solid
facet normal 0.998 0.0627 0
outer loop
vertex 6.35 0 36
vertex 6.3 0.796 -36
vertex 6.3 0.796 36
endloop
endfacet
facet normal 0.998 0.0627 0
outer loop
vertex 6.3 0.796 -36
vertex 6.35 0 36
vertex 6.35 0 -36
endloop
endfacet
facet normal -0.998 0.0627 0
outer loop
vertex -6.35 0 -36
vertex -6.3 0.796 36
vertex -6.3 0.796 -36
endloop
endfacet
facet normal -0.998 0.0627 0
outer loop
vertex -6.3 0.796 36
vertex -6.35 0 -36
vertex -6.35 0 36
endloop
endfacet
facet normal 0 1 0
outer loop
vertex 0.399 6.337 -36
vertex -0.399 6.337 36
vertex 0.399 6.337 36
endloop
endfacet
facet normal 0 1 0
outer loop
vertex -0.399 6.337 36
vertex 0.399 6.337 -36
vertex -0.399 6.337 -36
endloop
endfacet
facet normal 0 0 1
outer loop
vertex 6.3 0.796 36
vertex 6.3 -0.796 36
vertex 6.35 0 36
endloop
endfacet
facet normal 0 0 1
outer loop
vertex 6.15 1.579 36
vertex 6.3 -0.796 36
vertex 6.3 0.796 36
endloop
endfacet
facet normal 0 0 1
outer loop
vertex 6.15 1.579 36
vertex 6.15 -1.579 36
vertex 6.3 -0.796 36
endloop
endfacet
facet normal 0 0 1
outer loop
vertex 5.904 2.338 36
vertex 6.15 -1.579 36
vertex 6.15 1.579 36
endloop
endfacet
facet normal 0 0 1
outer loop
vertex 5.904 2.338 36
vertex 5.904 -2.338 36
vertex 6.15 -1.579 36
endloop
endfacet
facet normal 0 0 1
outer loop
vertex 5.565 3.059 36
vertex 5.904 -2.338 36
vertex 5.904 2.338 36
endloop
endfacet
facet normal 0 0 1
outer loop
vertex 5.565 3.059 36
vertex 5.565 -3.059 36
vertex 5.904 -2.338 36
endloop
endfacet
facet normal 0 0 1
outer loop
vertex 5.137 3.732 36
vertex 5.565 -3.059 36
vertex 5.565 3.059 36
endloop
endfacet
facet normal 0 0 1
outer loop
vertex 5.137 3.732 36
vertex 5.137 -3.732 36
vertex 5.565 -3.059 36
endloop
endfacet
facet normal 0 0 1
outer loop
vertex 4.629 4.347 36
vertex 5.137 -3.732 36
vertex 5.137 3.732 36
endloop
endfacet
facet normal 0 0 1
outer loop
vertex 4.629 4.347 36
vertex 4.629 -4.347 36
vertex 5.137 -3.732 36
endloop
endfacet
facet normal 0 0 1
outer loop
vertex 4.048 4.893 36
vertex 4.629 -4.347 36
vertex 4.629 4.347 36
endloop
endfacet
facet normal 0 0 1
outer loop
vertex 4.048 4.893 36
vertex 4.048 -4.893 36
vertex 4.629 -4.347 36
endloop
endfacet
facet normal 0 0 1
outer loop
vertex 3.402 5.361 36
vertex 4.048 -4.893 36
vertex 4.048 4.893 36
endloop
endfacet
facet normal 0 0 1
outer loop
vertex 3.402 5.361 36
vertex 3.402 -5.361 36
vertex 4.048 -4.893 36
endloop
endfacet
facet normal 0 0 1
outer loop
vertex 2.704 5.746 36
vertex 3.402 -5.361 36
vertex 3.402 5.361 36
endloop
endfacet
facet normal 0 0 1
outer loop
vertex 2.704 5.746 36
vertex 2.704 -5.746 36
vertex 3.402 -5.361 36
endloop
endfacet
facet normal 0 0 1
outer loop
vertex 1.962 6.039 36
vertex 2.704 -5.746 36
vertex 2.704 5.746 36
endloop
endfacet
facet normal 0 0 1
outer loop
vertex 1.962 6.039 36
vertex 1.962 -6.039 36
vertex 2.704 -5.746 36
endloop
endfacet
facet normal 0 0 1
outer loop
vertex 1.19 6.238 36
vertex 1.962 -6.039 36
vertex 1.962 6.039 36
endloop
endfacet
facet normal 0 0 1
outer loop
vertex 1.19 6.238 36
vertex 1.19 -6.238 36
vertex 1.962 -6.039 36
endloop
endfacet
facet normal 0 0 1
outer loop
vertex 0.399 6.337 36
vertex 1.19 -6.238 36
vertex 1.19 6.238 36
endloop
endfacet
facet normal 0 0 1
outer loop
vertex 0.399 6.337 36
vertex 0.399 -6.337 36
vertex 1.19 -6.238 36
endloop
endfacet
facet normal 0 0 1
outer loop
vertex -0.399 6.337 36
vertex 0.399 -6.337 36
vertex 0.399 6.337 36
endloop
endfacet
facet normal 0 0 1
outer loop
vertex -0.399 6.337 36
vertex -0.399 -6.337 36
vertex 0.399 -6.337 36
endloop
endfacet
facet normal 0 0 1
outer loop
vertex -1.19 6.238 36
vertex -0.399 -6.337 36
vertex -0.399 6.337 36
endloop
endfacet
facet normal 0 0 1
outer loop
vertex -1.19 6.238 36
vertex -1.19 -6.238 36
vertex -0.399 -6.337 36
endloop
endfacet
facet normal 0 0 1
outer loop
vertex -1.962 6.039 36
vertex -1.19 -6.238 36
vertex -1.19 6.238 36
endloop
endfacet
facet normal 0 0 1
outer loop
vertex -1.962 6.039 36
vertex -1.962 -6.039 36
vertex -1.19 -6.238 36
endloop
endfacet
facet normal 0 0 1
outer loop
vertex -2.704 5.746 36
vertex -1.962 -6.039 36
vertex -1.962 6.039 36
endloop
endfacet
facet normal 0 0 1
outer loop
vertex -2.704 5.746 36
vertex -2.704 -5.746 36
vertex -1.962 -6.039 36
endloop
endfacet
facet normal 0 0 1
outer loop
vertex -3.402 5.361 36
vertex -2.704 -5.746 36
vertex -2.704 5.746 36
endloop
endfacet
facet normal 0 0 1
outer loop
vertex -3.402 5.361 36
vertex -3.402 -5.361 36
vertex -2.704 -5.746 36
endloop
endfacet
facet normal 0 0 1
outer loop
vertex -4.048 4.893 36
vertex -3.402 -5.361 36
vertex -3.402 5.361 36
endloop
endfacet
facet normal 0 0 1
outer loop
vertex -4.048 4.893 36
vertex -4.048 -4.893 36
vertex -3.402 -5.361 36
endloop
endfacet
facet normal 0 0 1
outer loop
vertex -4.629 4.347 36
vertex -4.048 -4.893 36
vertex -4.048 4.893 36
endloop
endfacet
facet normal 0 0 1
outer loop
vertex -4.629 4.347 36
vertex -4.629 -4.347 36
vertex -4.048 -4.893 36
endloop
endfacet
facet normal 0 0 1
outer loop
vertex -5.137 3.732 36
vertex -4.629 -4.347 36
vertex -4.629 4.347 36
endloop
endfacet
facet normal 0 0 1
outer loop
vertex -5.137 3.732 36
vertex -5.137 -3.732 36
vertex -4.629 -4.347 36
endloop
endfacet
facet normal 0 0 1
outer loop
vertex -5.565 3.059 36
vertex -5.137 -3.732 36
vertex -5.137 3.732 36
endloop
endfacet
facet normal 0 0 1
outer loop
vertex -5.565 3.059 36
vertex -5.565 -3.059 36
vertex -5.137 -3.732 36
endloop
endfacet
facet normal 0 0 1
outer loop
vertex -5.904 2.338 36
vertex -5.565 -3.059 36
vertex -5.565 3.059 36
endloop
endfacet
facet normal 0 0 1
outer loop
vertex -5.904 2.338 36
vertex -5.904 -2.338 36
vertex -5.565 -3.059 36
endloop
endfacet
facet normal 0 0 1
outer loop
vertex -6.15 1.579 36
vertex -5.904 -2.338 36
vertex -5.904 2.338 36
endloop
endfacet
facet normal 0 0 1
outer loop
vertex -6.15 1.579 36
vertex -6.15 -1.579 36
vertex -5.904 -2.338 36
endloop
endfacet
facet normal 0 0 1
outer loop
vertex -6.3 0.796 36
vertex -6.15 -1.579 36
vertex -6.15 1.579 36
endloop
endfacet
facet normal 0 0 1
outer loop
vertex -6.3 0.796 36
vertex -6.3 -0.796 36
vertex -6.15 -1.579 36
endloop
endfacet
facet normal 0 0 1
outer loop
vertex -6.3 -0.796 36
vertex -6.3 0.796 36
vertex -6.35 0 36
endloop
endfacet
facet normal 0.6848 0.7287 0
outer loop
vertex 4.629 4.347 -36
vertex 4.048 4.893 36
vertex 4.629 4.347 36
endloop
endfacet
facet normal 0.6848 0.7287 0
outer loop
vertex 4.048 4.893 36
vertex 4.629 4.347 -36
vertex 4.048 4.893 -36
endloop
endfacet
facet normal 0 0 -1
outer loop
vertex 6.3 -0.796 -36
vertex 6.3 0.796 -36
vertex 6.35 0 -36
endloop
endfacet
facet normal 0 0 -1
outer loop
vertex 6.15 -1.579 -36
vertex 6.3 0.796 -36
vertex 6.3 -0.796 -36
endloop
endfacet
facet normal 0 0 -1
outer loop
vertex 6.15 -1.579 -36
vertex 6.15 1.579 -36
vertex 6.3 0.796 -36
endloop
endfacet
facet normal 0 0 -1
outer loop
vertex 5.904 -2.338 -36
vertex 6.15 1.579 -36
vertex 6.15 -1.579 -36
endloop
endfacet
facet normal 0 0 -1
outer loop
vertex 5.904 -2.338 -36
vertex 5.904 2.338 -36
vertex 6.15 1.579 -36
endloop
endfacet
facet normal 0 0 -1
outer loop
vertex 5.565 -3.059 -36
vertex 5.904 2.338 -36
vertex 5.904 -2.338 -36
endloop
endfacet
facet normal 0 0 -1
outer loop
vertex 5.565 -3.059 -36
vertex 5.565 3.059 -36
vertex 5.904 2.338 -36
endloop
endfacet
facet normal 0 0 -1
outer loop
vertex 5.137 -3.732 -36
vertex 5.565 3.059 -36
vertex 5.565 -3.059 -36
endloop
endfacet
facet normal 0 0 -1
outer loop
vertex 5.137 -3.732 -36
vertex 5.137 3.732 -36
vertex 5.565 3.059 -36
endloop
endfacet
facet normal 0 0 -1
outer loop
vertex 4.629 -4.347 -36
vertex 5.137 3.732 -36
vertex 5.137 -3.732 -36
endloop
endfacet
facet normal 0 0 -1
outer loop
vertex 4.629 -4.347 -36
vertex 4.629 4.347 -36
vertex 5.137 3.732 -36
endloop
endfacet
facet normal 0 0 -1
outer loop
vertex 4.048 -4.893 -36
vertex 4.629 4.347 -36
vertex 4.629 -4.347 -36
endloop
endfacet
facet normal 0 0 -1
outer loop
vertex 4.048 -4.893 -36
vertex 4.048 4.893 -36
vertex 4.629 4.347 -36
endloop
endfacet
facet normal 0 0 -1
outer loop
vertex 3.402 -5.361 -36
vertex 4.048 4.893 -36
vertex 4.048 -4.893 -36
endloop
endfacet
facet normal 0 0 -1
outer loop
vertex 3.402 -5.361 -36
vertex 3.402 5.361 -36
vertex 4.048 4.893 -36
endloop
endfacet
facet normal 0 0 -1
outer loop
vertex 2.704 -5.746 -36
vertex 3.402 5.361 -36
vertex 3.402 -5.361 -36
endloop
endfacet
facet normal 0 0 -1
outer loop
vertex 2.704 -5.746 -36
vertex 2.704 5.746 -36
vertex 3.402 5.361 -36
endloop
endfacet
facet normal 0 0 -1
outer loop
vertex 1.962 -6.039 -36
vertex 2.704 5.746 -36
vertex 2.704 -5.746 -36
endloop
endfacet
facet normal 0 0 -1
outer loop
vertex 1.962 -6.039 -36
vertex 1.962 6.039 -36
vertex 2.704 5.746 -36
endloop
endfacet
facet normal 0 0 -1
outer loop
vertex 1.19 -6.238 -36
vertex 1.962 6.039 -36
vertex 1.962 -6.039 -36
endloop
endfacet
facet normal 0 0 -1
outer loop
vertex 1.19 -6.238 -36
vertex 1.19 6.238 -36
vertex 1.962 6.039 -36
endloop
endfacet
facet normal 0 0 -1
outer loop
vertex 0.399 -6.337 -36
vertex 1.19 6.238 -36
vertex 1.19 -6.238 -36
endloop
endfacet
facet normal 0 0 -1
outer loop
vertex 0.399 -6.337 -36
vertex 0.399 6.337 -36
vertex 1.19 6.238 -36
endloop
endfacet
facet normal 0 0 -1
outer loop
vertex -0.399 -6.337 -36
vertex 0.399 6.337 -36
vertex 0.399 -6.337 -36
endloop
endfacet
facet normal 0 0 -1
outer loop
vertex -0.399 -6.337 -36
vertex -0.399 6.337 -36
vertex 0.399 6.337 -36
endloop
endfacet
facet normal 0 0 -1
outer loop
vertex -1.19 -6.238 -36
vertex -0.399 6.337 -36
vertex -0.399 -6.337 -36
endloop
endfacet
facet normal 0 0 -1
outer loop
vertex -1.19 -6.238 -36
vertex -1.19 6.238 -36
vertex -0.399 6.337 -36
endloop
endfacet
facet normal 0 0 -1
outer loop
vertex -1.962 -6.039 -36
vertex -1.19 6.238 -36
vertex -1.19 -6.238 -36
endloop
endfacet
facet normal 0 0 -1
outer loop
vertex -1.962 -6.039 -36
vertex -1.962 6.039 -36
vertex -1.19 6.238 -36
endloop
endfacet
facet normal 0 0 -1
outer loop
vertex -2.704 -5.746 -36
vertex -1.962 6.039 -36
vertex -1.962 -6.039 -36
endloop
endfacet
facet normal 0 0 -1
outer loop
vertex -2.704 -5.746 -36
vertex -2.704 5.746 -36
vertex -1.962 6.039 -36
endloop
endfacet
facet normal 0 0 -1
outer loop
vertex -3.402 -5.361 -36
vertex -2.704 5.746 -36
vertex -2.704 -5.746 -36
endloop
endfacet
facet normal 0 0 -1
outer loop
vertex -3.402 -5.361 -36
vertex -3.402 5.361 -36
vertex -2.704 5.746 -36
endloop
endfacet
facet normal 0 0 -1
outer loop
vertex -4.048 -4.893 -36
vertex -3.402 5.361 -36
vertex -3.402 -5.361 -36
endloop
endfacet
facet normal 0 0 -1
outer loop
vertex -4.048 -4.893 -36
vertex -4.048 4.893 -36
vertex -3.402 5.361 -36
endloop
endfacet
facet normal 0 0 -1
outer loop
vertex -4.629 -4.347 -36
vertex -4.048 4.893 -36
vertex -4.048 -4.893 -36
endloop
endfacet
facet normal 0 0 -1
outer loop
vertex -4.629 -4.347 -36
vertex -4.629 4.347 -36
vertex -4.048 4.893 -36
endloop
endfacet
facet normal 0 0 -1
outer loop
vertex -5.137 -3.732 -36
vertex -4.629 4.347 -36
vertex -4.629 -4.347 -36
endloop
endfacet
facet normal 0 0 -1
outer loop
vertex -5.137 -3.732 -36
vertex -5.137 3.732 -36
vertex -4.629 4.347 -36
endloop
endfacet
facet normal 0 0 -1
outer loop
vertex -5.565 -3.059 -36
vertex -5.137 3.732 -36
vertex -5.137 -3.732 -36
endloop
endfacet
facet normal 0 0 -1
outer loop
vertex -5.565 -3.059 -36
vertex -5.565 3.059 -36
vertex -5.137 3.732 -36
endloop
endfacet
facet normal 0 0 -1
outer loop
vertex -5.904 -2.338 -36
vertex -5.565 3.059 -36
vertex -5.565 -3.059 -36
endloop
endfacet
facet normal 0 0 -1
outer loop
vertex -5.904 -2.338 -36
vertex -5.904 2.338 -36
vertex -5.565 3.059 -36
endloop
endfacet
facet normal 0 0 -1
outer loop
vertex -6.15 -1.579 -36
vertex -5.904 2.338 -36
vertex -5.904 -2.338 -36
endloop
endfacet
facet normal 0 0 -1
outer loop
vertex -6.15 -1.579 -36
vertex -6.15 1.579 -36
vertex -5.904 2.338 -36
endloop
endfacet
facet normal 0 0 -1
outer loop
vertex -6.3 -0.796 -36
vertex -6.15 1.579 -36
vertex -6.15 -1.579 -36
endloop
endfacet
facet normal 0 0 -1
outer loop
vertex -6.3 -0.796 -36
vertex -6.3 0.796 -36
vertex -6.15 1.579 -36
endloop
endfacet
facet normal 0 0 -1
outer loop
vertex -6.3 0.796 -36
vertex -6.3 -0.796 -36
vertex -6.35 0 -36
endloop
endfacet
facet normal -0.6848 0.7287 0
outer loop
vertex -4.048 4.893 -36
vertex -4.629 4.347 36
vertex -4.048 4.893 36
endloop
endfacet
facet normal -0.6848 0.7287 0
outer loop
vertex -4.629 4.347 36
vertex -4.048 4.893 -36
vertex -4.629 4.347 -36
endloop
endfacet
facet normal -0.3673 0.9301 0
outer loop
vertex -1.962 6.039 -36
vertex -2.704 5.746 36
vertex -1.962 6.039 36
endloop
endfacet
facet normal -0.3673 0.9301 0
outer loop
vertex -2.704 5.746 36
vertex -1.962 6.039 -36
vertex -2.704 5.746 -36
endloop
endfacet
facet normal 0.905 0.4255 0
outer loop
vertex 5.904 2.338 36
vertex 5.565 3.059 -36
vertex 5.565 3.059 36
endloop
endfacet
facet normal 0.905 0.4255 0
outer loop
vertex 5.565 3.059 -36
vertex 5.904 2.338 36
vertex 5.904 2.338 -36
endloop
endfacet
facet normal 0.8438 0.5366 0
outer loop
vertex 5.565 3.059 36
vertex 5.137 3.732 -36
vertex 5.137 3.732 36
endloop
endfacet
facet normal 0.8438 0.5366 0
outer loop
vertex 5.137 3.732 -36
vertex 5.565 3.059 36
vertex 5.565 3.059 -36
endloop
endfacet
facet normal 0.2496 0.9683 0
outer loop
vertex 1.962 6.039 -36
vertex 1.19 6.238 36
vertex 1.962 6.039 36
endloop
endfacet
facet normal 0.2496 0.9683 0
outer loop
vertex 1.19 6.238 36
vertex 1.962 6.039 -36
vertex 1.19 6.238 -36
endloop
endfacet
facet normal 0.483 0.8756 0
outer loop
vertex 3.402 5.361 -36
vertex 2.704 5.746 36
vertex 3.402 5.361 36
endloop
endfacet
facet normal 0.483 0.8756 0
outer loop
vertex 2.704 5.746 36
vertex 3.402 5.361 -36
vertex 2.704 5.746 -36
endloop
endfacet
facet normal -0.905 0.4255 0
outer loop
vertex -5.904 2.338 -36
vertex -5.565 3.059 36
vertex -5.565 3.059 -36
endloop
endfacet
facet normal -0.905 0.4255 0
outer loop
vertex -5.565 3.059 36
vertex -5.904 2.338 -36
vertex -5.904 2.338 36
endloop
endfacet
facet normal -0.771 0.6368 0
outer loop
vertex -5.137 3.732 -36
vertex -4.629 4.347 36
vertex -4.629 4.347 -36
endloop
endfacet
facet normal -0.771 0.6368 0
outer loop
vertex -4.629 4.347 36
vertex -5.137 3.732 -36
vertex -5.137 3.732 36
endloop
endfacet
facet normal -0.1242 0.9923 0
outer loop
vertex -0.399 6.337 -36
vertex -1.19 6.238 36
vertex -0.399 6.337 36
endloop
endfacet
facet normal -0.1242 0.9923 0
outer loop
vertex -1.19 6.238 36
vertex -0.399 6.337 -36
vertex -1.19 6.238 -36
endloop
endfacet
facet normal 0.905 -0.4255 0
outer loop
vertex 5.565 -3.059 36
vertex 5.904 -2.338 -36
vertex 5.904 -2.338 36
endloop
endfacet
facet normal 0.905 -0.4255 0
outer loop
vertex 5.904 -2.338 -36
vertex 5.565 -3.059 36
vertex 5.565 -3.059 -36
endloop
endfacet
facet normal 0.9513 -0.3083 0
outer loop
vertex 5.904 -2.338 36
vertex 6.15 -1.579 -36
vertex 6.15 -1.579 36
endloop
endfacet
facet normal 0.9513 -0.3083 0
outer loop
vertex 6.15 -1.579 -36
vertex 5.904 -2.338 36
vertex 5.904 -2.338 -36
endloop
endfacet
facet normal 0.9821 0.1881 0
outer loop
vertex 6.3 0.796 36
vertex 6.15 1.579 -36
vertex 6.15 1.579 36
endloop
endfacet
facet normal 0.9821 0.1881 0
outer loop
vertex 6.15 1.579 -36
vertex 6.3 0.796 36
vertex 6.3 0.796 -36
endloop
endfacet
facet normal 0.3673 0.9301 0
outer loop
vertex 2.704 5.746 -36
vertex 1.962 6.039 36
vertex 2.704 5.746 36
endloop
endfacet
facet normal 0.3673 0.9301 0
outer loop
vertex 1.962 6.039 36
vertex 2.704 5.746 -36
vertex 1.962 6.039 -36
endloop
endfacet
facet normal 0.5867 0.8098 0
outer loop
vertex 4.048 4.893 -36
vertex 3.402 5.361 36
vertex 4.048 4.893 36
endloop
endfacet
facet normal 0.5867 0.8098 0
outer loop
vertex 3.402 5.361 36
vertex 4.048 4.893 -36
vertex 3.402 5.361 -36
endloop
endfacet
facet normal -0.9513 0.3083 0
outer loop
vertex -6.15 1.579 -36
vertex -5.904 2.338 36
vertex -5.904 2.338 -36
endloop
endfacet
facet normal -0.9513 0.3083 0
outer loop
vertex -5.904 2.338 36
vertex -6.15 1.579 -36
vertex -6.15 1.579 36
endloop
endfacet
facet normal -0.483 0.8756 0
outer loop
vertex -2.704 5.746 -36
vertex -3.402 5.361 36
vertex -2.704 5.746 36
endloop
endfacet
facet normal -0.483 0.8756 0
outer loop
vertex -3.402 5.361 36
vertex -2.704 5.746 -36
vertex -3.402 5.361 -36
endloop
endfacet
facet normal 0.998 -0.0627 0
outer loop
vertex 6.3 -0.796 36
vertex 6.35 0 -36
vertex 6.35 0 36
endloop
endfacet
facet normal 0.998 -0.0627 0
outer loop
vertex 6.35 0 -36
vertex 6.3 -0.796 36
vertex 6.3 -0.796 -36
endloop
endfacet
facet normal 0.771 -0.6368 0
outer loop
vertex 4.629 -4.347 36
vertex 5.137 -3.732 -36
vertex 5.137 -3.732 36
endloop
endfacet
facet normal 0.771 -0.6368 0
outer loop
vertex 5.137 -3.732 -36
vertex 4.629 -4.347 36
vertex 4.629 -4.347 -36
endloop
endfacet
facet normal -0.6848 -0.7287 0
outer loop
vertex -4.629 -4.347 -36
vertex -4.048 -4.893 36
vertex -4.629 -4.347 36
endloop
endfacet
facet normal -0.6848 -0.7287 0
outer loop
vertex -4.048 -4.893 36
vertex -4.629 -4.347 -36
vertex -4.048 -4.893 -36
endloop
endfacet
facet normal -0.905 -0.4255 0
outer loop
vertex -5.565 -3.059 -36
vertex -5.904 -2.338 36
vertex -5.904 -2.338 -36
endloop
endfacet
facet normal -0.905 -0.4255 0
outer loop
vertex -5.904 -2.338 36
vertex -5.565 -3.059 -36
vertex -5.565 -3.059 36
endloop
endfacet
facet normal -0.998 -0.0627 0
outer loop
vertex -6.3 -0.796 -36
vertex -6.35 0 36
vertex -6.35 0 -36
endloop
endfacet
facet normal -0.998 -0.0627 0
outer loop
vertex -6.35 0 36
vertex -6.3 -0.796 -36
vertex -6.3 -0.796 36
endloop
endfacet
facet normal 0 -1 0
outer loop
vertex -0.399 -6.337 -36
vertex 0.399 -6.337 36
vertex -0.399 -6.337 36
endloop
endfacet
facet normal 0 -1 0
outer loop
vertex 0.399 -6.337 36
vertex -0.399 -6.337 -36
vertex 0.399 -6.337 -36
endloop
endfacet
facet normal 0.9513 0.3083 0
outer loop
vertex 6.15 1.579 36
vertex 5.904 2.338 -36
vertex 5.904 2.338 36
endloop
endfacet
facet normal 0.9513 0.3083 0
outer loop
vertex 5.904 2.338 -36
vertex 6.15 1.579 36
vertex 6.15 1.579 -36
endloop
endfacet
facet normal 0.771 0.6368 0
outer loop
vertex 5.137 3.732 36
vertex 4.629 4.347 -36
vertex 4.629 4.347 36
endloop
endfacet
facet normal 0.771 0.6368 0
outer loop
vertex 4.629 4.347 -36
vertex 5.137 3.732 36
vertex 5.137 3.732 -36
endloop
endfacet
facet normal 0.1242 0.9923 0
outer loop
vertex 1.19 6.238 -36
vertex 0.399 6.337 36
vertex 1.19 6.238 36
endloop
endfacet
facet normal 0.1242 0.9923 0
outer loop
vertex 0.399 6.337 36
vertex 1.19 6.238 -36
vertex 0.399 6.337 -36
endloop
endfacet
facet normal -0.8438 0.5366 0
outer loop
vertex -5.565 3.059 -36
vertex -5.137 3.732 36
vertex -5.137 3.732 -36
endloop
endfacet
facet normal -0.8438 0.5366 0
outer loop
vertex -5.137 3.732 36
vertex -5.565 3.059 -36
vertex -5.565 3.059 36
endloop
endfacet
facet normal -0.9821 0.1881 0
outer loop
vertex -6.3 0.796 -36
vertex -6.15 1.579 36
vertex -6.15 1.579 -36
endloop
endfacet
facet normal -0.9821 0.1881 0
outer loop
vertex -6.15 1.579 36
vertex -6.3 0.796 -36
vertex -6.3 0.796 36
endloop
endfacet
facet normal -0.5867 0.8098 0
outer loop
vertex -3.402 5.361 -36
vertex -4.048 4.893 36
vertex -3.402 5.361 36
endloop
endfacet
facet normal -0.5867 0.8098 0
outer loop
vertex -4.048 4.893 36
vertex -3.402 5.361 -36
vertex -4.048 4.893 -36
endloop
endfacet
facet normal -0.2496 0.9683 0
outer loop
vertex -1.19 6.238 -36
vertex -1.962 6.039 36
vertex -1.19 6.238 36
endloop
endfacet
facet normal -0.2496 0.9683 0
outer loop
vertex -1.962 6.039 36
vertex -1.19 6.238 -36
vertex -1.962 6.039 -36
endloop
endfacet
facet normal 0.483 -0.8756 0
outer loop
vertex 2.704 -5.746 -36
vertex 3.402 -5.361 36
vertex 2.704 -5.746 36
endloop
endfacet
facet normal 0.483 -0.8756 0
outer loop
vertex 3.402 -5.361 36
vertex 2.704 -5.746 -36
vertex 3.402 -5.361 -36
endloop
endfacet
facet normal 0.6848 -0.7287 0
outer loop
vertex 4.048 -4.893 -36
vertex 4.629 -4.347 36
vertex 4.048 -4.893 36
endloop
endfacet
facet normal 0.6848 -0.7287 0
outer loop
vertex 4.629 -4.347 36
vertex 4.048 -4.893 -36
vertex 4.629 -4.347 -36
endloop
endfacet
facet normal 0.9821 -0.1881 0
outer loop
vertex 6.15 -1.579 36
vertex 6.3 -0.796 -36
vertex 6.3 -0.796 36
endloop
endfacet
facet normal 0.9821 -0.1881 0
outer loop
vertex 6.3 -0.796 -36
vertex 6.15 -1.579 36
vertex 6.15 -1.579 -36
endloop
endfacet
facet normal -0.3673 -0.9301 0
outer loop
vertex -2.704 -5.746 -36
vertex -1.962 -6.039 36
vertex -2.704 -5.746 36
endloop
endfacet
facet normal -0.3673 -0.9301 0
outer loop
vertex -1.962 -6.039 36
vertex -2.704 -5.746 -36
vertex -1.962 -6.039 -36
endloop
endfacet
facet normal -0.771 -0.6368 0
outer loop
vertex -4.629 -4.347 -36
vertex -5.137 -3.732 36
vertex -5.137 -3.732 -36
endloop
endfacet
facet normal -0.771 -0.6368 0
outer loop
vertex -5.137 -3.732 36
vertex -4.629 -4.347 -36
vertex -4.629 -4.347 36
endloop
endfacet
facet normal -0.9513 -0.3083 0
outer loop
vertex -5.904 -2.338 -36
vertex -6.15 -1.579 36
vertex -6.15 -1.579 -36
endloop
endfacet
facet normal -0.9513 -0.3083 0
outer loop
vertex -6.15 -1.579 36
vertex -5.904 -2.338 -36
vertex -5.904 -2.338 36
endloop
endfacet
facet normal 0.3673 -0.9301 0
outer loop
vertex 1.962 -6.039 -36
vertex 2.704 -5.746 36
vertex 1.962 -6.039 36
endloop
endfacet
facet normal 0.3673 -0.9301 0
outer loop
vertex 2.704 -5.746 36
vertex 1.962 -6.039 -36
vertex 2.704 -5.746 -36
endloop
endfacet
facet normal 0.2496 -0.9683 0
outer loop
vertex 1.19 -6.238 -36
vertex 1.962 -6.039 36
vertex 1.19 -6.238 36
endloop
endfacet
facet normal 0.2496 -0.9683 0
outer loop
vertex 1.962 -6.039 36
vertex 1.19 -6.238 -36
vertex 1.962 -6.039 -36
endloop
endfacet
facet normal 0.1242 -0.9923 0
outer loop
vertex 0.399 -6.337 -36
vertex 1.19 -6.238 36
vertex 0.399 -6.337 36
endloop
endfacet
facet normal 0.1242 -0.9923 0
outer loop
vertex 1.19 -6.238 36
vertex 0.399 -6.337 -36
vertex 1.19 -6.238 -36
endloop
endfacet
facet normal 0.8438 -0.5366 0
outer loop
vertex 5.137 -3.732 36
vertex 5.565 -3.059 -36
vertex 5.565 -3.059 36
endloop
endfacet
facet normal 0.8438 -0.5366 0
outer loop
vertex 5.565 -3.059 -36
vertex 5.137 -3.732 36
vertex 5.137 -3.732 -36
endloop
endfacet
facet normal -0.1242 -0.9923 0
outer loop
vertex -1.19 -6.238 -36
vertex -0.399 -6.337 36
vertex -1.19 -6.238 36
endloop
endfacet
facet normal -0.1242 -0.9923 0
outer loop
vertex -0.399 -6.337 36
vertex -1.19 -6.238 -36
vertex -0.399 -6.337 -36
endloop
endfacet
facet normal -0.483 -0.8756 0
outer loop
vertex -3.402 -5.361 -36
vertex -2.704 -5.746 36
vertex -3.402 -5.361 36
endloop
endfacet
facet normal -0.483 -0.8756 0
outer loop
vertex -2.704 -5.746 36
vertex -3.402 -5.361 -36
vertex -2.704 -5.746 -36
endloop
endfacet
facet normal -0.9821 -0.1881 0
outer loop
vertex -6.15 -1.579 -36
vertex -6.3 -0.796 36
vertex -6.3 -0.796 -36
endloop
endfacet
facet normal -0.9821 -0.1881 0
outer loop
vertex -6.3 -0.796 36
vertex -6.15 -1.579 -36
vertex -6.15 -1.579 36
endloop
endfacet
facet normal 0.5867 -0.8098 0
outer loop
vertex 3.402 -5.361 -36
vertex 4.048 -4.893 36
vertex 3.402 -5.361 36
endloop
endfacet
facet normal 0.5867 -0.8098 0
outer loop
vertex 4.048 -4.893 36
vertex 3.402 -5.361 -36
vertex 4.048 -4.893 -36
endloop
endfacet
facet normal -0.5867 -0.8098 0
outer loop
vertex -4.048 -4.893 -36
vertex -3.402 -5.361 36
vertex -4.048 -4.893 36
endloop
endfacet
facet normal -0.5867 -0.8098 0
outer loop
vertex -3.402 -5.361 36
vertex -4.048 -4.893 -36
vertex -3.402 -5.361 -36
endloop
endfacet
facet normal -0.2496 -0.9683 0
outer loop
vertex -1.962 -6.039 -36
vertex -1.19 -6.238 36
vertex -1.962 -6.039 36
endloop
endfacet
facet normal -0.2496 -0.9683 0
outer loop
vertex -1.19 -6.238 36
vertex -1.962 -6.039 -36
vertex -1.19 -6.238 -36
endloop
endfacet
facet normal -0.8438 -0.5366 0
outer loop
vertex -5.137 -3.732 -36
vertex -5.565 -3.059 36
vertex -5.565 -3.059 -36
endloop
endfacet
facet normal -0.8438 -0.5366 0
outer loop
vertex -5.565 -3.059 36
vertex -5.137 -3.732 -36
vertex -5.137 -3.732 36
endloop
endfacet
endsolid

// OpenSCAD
$fn = 50;


difference() {
	union() {
		translate(v = [0, 0, -36.0000000000]) {
			cylinder(h = 72, r = 6.3500000000);
		}
	}
	union() {
		translate(v = [0, 0, -100.0000000000]) {
			cylinder(h = 200, r = 0);
		}
	}
}
